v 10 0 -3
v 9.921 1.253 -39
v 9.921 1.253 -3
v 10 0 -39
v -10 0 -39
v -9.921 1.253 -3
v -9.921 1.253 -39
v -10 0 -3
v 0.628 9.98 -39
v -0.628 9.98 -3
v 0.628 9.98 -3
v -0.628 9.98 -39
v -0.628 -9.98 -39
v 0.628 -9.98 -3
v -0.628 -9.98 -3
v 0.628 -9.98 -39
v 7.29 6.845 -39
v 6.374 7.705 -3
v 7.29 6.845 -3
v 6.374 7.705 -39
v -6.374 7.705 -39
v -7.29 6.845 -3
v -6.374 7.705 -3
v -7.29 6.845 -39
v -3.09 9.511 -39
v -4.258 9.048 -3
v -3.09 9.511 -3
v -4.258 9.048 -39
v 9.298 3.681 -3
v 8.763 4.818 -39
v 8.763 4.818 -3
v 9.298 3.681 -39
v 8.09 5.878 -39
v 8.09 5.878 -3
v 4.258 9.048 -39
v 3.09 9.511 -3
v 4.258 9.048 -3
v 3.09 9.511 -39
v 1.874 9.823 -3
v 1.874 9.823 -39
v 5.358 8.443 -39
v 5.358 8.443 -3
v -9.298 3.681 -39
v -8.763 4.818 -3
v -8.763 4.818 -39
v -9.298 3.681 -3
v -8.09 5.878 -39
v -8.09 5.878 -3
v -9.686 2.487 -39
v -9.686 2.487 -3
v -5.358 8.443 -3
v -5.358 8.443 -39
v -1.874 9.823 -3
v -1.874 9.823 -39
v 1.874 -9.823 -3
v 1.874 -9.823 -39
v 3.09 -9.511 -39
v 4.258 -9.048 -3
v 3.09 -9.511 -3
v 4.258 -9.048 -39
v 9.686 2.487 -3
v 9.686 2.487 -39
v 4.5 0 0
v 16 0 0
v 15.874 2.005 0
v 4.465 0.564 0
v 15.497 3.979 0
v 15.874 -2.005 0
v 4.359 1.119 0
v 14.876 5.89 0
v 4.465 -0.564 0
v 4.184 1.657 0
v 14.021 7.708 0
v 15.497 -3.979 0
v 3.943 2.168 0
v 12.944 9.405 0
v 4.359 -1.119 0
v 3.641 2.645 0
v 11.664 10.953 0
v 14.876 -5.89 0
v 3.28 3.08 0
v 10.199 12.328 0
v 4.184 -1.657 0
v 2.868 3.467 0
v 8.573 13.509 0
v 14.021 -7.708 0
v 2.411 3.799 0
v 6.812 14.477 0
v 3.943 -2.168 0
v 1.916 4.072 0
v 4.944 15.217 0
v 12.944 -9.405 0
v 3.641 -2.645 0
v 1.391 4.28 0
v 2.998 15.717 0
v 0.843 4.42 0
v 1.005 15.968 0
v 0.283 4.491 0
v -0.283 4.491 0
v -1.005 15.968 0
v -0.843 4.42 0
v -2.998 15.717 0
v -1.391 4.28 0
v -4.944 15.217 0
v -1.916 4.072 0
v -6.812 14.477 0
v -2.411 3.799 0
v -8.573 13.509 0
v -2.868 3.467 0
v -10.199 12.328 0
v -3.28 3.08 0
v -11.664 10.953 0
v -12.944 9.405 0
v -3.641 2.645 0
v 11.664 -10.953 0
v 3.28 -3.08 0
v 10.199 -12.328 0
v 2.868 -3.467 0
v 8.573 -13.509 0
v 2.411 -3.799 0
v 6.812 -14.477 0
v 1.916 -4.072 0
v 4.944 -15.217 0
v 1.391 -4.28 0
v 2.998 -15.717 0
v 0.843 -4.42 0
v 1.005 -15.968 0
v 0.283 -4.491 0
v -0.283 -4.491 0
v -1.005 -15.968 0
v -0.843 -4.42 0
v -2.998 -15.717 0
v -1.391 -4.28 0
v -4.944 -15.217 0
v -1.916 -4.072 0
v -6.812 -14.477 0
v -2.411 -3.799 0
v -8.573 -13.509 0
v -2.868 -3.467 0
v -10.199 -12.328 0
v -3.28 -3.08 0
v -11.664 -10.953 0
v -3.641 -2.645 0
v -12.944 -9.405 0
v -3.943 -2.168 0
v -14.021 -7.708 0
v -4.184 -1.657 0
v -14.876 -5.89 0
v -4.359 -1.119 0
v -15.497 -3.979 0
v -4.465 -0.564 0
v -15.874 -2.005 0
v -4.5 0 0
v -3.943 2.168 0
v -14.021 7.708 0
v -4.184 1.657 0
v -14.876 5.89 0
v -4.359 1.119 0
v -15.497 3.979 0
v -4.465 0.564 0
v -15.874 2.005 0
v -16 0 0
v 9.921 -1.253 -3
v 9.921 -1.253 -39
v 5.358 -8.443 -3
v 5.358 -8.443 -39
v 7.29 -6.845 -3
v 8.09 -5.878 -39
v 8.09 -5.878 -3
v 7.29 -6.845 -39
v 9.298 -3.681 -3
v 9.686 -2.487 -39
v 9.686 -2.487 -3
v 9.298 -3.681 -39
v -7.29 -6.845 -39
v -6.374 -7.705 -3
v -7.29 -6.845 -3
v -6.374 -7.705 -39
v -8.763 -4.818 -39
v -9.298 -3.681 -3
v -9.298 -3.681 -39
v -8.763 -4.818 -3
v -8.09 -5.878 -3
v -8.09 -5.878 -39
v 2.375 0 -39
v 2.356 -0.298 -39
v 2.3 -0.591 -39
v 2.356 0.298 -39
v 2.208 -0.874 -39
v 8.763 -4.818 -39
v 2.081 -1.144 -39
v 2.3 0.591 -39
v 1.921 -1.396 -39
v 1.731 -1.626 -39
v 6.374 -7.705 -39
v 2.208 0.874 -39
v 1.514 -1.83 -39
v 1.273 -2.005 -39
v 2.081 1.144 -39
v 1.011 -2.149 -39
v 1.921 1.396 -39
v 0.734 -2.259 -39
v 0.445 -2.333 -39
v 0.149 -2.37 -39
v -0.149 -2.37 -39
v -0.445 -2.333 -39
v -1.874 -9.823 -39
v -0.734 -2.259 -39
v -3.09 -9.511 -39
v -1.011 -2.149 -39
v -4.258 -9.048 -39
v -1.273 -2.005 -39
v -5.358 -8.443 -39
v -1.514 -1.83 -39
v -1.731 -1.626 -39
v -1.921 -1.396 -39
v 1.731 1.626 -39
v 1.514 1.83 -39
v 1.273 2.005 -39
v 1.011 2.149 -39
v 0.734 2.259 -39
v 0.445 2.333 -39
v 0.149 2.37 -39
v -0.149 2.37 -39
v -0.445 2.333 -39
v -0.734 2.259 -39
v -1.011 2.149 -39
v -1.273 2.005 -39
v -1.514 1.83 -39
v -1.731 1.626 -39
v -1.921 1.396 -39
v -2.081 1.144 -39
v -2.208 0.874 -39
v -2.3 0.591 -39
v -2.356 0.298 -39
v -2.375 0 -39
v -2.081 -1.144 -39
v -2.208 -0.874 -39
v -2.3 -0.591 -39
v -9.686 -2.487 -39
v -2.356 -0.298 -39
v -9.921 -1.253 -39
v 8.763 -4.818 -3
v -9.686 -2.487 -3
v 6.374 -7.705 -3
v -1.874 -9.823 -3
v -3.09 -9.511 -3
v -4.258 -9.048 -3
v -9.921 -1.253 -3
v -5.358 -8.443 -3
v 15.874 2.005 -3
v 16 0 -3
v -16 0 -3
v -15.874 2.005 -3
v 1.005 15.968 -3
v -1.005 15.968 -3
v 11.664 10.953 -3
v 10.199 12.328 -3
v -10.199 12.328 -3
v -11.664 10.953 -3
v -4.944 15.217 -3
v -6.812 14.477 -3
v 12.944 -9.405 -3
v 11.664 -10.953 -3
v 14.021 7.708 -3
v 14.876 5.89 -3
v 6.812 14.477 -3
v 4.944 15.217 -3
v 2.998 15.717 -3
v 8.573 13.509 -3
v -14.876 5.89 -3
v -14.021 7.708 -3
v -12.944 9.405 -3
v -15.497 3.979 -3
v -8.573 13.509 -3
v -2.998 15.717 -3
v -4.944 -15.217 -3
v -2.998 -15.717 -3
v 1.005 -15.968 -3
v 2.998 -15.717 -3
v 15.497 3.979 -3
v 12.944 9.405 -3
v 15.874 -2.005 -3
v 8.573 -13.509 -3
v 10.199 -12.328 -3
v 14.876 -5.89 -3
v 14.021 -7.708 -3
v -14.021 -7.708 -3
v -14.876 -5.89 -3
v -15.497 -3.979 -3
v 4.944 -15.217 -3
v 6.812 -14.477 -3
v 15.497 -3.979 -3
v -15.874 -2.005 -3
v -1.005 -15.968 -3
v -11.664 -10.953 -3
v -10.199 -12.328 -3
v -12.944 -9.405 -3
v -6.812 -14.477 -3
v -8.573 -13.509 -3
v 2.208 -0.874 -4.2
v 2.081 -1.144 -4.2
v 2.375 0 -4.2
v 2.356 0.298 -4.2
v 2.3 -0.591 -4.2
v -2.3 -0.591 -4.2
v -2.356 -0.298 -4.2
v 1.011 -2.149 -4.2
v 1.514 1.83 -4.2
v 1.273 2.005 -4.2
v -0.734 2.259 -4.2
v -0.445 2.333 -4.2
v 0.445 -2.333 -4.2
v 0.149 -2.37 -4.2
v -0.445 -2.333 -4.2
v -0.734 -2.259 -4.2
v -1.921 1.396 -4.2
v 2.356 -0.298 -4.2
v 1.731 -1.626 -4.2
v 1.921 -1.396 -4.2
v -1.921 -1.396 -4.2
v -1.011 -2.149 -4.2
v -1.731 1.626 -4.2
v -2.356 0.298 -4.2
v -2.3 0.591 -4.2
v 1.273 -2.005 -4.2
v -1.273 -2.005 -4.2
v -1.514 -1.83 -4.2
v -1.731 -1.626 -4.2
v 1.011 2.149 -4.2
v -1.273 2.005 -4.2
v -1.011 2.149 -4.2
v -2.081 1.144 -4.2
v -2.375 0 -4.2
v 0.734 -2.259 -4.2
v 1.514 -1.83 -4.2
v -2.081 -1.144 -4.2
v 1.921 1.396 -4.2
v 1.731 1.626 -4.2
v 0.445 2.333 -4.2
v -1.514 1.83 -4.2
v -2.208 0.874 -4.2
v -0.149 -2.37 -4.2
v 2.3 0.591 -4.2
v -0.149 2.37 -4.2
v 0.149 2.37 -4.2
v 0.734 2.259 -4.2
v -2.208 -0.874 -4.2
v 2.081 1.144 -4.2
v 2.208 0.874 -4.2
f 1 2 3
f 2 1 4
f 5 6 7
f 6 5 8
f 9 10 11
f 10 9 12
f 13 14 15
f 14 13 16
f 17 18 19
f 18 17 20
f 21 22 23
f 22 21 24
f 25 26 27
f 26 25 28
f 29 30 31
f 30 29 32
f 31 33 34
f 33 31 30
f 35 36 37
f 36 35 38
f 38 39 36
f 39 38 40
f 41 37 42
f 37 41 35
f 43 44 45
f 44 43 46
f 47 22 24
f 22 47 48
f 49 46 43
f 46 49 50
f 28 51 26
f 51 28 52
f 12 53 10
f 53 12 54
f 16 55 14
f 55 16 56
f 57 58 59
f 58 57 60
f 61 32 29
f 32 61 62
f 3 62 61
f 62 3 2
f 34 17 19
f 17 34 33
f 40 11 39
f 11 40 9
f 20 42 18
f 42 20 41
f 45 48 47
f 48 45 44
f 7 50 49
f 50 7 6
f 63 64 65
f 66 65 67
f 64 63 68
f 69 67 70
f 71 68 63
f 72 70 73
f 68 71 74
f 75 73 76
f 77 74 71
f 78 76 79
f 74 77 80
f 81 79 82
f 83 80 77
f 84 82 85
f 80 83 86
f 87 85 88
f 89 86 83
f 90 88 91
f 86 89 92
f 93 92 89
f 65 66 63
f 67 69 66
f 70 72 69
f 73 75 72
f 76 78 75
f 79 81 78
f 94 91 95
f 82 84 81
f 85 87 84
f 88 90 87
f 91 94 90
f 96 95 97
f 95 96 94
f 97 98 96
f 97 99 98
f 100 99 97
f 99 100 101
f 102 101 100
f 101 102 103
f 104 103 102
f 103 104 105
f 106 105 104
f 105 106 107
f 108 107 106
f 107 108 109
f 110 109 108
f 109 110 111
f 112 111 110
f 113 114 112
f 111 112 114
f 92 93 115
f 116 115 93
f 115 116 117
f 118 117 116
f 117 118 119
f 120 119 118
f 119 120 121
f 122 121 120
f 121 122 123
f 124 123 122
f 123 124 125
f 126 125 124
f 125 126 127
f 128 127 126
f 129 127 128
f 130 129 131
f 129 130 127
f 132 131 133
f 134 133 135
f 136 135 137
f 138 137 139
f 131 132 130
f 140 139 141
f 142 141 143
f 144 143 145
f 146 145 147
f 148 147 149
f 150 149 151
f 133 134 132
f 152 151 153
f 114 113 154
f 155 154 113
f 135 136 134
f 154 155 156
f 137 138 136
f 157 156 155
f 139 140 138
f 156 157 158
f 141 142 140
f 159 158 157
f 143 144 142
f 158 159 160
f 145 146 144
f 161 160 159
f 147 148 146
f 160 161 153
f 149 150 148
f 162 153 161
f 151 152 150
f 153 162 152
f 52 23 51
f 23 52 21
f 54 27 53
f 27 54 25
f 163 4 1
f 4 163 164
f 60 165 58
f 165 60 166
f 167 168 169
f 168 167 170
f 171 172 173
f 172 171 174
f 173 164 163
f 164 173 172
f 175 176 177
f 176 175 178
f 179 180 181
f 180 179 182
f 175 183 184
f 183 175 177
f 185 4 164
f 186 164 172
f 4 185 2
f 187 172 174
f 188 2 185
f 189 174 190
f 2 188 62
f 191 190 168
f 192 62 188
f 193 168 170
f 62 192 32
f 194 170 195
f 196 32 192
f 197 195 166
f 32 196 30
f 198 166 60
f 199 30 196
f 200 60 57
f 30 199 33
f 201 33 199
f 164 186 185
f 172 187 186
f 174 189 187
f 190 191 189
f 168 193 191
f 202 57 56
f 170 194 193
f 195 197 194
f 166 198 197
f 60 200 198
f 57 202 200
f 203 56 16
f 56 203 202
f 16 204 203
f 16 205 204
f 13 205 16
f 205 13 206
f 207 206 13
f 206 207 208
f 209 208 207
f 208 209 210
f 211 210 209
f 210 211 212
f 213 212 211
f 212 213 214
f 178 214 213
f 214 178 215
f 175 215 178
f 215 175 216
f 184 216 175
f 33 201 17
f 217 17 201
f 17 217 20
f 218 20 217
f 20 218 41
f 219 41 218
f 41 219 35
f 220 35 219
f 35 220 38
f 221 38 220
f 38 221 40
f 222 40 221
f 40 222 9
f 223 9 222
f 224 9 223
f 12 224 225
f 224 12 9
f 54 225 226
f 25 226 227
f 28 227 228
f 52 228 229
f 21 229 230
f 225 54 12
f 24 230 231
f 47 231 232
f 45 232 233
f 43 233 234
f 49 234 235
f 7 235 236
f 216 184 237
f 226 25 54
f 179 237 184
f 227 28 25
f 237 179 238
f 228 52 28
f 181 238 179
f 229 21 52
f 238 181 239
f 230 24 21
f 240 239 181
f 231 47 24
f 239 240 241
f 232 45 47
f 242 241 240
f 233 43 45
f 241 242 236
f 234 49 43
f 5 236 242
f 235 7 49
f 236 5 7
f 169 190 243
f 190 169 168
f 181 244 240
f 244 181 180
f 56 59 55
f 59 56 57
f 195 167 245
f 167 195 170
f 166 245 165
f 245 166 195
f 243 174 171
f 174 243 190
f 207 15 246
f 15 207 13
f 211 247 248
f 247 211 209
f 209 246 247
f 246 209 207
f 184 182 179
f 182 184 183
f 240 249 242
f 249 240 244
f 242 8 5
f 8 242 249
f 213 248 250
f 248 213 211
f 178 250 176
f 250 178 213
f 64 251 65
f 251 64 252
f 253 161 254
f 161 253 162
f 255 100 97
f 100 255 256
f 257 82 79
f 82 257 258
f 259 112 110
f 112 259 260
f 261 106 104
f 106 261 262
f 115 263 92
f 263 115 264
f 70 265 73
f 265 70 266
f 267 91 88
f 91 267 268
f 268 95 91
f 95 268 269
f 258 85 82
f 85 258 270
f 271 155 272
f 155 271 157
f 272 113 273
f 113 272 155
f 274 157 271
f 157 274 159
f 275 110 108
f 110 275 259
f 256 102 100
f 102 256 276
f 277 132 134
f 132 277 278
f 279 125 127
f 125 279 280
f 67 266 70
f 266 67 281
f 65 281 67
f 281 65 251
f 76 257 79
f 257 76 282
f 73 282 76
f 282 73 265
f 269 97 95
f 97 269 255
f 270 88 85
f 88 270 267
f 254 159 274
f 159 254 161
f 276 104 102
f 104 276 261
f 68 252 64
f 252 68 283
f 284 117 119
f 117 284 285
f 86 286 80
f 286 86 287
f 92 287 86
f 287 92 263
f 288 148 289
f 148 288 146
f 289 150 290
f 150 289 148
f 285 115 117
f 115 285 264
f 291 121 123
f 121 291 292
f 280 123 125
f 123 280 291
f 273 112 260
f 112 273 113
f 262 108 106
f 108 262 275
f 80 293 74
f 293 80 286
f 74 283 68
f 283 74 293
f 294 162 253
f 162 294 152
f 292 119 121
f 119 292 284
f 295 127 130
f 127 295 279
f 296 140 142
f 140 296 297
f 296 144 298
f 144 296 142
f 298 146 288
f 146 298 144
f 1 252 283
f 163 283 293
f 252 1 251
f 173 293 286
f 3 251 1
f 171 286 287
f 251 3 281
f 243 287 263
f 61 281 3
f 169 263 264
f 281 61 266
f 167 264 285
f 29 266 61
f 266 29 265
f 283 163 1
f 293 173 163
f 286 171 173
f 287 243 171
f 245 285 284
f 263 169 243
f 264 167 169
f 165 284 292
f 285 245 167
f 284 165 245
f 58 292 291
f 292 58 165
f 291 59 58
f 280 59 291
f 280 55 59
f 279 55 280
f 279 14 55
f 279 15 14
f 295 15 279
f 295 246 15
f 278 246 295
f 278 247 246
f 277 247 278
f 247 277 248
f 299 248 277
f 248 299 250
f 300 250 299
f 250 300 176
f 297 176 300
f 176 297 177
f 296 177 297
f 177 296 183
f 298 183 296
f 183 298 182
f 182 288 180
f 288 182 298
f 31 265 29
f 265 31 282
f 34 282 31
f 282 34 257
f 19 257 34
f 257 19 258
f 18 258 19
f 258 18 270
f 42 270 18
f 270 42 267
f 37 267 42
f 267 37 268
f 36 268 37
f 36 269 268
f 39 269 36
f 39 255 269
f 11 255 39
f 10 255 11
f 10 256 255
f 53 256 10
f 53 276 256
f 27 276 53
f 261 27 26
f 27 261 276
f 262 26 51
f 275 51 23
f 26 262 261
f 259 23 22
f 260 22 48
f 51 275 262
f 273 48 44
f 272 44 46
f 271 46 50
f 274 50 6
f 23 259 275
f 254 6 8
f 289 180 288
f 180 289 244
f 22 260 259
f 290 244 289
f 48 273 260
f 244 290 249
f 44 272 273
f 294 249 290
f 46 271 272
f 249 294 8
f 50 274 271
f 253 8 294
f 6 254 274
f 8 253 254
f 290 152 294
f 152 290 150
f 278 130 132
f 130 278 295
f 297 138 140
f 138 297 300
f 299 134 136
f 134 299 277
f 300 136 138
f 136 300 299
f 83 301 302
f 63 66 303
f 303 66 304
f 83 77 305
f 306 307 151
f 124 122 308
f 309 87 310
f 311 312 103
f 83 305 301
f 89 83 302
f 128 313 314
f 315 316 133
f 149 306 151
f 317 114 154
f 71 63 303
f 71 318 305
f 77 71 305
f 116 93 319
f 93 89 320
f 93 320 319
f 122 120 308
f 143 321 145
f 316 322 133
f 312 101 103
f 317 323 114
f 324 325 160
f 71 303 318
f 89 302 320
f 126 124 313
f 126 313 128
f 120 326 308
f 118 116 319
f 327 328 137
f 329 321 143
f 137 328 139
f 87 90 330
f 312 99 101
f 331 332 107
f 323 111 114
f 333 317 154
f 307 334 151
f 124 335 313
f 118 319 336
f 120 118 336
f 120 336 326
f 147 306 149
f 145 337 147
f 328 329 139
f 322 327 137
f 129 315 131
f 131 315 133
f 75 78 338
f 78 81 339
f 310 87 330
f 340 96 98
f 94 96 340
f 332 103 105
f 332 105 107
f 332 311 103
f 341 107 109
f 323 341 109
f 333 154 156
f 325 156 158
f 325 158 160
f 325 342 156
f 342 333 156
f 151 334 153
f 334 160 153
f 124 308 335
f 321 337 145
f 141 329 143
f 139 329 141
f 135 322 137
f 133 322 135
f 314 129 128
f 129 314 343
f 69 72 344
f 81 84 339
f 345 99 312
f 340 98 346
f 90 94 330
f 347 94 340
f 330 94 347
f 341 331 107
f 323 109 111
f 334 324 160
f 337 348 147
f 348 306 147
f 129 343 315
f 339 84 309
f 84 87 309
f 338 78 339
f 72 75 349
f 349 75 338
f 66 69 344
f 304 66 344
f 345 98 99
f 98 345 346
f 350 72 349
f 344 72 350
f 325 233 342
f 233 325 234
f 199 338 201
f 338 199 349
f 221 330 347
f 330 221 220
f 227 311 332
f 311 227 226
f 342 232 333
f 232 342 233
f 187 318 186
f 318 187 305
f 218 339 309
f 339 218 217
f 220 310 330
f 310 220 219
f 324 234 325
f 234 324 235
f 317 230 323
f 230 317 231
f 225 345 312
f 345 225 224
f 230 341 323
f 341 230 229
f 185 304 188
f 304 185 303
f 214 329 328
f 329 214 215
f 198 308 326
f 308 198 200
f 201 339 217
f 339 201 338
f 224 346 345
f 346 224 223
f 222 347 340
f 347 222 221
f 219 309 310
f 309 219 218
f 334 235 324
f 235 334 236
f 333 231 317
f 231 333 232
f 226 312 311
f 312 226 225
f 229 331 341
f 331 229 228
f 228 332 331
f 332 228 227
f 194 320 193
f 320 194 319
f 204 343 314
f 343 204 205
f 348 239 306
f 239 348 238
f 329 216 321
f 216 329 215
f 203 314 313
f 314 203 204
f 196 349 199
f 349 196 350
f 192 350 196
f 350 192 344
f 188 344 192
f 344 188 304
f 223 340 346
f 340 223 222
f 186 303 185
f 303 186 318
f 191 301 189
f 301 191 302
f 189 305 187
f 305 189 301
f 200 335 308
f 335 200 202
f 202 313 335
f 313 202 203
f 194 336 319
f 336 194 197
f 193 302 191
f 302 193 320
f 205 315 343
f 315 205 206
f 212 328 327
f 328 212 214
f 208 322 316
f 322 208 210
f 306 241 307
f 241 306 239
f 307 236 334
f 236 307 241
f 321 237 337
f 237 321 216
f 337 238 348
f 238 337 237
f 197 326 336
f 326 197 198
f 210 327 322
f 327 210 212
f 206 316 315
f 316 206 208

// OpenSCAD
$fn = 50;


difference() {
	union() {
		translate(v = [0, 0, -39.0000000000]) {
			cylinder(h = 39, r = 10.0000000000);
		}
		translate(v = [0, 0, -3.0000000000]) {
			cylinder(h = 3, r = 16.0000000000);
		}
	}
	union() {
		translate(v = [0, 0, 0]) {
			rotate(a = [0, 0, 0]) {
				difference() {
					union() {
						#translate(v = [0, 0, -39.0000000000]) {
							cylinder(h = 39, r = 2.2500000000);
						}
						#translate(v = [0, 0, -4.2000000000]) {
							cylinder(h = 4.2000000000, r1 = 2.3750000000, r2 = 4.5000000000);
						}
						#translate(v = [0, 0, -39.0000000000]) {
							cylinder(h = 39, r = 2.3750000000);
						}
						#translate(v = [0, 0, -39.0000000000]) {
							cylinder(h = 39, r = 2.2500000000);
						}
					}
					union();
				}
			}
		}
	}
}
